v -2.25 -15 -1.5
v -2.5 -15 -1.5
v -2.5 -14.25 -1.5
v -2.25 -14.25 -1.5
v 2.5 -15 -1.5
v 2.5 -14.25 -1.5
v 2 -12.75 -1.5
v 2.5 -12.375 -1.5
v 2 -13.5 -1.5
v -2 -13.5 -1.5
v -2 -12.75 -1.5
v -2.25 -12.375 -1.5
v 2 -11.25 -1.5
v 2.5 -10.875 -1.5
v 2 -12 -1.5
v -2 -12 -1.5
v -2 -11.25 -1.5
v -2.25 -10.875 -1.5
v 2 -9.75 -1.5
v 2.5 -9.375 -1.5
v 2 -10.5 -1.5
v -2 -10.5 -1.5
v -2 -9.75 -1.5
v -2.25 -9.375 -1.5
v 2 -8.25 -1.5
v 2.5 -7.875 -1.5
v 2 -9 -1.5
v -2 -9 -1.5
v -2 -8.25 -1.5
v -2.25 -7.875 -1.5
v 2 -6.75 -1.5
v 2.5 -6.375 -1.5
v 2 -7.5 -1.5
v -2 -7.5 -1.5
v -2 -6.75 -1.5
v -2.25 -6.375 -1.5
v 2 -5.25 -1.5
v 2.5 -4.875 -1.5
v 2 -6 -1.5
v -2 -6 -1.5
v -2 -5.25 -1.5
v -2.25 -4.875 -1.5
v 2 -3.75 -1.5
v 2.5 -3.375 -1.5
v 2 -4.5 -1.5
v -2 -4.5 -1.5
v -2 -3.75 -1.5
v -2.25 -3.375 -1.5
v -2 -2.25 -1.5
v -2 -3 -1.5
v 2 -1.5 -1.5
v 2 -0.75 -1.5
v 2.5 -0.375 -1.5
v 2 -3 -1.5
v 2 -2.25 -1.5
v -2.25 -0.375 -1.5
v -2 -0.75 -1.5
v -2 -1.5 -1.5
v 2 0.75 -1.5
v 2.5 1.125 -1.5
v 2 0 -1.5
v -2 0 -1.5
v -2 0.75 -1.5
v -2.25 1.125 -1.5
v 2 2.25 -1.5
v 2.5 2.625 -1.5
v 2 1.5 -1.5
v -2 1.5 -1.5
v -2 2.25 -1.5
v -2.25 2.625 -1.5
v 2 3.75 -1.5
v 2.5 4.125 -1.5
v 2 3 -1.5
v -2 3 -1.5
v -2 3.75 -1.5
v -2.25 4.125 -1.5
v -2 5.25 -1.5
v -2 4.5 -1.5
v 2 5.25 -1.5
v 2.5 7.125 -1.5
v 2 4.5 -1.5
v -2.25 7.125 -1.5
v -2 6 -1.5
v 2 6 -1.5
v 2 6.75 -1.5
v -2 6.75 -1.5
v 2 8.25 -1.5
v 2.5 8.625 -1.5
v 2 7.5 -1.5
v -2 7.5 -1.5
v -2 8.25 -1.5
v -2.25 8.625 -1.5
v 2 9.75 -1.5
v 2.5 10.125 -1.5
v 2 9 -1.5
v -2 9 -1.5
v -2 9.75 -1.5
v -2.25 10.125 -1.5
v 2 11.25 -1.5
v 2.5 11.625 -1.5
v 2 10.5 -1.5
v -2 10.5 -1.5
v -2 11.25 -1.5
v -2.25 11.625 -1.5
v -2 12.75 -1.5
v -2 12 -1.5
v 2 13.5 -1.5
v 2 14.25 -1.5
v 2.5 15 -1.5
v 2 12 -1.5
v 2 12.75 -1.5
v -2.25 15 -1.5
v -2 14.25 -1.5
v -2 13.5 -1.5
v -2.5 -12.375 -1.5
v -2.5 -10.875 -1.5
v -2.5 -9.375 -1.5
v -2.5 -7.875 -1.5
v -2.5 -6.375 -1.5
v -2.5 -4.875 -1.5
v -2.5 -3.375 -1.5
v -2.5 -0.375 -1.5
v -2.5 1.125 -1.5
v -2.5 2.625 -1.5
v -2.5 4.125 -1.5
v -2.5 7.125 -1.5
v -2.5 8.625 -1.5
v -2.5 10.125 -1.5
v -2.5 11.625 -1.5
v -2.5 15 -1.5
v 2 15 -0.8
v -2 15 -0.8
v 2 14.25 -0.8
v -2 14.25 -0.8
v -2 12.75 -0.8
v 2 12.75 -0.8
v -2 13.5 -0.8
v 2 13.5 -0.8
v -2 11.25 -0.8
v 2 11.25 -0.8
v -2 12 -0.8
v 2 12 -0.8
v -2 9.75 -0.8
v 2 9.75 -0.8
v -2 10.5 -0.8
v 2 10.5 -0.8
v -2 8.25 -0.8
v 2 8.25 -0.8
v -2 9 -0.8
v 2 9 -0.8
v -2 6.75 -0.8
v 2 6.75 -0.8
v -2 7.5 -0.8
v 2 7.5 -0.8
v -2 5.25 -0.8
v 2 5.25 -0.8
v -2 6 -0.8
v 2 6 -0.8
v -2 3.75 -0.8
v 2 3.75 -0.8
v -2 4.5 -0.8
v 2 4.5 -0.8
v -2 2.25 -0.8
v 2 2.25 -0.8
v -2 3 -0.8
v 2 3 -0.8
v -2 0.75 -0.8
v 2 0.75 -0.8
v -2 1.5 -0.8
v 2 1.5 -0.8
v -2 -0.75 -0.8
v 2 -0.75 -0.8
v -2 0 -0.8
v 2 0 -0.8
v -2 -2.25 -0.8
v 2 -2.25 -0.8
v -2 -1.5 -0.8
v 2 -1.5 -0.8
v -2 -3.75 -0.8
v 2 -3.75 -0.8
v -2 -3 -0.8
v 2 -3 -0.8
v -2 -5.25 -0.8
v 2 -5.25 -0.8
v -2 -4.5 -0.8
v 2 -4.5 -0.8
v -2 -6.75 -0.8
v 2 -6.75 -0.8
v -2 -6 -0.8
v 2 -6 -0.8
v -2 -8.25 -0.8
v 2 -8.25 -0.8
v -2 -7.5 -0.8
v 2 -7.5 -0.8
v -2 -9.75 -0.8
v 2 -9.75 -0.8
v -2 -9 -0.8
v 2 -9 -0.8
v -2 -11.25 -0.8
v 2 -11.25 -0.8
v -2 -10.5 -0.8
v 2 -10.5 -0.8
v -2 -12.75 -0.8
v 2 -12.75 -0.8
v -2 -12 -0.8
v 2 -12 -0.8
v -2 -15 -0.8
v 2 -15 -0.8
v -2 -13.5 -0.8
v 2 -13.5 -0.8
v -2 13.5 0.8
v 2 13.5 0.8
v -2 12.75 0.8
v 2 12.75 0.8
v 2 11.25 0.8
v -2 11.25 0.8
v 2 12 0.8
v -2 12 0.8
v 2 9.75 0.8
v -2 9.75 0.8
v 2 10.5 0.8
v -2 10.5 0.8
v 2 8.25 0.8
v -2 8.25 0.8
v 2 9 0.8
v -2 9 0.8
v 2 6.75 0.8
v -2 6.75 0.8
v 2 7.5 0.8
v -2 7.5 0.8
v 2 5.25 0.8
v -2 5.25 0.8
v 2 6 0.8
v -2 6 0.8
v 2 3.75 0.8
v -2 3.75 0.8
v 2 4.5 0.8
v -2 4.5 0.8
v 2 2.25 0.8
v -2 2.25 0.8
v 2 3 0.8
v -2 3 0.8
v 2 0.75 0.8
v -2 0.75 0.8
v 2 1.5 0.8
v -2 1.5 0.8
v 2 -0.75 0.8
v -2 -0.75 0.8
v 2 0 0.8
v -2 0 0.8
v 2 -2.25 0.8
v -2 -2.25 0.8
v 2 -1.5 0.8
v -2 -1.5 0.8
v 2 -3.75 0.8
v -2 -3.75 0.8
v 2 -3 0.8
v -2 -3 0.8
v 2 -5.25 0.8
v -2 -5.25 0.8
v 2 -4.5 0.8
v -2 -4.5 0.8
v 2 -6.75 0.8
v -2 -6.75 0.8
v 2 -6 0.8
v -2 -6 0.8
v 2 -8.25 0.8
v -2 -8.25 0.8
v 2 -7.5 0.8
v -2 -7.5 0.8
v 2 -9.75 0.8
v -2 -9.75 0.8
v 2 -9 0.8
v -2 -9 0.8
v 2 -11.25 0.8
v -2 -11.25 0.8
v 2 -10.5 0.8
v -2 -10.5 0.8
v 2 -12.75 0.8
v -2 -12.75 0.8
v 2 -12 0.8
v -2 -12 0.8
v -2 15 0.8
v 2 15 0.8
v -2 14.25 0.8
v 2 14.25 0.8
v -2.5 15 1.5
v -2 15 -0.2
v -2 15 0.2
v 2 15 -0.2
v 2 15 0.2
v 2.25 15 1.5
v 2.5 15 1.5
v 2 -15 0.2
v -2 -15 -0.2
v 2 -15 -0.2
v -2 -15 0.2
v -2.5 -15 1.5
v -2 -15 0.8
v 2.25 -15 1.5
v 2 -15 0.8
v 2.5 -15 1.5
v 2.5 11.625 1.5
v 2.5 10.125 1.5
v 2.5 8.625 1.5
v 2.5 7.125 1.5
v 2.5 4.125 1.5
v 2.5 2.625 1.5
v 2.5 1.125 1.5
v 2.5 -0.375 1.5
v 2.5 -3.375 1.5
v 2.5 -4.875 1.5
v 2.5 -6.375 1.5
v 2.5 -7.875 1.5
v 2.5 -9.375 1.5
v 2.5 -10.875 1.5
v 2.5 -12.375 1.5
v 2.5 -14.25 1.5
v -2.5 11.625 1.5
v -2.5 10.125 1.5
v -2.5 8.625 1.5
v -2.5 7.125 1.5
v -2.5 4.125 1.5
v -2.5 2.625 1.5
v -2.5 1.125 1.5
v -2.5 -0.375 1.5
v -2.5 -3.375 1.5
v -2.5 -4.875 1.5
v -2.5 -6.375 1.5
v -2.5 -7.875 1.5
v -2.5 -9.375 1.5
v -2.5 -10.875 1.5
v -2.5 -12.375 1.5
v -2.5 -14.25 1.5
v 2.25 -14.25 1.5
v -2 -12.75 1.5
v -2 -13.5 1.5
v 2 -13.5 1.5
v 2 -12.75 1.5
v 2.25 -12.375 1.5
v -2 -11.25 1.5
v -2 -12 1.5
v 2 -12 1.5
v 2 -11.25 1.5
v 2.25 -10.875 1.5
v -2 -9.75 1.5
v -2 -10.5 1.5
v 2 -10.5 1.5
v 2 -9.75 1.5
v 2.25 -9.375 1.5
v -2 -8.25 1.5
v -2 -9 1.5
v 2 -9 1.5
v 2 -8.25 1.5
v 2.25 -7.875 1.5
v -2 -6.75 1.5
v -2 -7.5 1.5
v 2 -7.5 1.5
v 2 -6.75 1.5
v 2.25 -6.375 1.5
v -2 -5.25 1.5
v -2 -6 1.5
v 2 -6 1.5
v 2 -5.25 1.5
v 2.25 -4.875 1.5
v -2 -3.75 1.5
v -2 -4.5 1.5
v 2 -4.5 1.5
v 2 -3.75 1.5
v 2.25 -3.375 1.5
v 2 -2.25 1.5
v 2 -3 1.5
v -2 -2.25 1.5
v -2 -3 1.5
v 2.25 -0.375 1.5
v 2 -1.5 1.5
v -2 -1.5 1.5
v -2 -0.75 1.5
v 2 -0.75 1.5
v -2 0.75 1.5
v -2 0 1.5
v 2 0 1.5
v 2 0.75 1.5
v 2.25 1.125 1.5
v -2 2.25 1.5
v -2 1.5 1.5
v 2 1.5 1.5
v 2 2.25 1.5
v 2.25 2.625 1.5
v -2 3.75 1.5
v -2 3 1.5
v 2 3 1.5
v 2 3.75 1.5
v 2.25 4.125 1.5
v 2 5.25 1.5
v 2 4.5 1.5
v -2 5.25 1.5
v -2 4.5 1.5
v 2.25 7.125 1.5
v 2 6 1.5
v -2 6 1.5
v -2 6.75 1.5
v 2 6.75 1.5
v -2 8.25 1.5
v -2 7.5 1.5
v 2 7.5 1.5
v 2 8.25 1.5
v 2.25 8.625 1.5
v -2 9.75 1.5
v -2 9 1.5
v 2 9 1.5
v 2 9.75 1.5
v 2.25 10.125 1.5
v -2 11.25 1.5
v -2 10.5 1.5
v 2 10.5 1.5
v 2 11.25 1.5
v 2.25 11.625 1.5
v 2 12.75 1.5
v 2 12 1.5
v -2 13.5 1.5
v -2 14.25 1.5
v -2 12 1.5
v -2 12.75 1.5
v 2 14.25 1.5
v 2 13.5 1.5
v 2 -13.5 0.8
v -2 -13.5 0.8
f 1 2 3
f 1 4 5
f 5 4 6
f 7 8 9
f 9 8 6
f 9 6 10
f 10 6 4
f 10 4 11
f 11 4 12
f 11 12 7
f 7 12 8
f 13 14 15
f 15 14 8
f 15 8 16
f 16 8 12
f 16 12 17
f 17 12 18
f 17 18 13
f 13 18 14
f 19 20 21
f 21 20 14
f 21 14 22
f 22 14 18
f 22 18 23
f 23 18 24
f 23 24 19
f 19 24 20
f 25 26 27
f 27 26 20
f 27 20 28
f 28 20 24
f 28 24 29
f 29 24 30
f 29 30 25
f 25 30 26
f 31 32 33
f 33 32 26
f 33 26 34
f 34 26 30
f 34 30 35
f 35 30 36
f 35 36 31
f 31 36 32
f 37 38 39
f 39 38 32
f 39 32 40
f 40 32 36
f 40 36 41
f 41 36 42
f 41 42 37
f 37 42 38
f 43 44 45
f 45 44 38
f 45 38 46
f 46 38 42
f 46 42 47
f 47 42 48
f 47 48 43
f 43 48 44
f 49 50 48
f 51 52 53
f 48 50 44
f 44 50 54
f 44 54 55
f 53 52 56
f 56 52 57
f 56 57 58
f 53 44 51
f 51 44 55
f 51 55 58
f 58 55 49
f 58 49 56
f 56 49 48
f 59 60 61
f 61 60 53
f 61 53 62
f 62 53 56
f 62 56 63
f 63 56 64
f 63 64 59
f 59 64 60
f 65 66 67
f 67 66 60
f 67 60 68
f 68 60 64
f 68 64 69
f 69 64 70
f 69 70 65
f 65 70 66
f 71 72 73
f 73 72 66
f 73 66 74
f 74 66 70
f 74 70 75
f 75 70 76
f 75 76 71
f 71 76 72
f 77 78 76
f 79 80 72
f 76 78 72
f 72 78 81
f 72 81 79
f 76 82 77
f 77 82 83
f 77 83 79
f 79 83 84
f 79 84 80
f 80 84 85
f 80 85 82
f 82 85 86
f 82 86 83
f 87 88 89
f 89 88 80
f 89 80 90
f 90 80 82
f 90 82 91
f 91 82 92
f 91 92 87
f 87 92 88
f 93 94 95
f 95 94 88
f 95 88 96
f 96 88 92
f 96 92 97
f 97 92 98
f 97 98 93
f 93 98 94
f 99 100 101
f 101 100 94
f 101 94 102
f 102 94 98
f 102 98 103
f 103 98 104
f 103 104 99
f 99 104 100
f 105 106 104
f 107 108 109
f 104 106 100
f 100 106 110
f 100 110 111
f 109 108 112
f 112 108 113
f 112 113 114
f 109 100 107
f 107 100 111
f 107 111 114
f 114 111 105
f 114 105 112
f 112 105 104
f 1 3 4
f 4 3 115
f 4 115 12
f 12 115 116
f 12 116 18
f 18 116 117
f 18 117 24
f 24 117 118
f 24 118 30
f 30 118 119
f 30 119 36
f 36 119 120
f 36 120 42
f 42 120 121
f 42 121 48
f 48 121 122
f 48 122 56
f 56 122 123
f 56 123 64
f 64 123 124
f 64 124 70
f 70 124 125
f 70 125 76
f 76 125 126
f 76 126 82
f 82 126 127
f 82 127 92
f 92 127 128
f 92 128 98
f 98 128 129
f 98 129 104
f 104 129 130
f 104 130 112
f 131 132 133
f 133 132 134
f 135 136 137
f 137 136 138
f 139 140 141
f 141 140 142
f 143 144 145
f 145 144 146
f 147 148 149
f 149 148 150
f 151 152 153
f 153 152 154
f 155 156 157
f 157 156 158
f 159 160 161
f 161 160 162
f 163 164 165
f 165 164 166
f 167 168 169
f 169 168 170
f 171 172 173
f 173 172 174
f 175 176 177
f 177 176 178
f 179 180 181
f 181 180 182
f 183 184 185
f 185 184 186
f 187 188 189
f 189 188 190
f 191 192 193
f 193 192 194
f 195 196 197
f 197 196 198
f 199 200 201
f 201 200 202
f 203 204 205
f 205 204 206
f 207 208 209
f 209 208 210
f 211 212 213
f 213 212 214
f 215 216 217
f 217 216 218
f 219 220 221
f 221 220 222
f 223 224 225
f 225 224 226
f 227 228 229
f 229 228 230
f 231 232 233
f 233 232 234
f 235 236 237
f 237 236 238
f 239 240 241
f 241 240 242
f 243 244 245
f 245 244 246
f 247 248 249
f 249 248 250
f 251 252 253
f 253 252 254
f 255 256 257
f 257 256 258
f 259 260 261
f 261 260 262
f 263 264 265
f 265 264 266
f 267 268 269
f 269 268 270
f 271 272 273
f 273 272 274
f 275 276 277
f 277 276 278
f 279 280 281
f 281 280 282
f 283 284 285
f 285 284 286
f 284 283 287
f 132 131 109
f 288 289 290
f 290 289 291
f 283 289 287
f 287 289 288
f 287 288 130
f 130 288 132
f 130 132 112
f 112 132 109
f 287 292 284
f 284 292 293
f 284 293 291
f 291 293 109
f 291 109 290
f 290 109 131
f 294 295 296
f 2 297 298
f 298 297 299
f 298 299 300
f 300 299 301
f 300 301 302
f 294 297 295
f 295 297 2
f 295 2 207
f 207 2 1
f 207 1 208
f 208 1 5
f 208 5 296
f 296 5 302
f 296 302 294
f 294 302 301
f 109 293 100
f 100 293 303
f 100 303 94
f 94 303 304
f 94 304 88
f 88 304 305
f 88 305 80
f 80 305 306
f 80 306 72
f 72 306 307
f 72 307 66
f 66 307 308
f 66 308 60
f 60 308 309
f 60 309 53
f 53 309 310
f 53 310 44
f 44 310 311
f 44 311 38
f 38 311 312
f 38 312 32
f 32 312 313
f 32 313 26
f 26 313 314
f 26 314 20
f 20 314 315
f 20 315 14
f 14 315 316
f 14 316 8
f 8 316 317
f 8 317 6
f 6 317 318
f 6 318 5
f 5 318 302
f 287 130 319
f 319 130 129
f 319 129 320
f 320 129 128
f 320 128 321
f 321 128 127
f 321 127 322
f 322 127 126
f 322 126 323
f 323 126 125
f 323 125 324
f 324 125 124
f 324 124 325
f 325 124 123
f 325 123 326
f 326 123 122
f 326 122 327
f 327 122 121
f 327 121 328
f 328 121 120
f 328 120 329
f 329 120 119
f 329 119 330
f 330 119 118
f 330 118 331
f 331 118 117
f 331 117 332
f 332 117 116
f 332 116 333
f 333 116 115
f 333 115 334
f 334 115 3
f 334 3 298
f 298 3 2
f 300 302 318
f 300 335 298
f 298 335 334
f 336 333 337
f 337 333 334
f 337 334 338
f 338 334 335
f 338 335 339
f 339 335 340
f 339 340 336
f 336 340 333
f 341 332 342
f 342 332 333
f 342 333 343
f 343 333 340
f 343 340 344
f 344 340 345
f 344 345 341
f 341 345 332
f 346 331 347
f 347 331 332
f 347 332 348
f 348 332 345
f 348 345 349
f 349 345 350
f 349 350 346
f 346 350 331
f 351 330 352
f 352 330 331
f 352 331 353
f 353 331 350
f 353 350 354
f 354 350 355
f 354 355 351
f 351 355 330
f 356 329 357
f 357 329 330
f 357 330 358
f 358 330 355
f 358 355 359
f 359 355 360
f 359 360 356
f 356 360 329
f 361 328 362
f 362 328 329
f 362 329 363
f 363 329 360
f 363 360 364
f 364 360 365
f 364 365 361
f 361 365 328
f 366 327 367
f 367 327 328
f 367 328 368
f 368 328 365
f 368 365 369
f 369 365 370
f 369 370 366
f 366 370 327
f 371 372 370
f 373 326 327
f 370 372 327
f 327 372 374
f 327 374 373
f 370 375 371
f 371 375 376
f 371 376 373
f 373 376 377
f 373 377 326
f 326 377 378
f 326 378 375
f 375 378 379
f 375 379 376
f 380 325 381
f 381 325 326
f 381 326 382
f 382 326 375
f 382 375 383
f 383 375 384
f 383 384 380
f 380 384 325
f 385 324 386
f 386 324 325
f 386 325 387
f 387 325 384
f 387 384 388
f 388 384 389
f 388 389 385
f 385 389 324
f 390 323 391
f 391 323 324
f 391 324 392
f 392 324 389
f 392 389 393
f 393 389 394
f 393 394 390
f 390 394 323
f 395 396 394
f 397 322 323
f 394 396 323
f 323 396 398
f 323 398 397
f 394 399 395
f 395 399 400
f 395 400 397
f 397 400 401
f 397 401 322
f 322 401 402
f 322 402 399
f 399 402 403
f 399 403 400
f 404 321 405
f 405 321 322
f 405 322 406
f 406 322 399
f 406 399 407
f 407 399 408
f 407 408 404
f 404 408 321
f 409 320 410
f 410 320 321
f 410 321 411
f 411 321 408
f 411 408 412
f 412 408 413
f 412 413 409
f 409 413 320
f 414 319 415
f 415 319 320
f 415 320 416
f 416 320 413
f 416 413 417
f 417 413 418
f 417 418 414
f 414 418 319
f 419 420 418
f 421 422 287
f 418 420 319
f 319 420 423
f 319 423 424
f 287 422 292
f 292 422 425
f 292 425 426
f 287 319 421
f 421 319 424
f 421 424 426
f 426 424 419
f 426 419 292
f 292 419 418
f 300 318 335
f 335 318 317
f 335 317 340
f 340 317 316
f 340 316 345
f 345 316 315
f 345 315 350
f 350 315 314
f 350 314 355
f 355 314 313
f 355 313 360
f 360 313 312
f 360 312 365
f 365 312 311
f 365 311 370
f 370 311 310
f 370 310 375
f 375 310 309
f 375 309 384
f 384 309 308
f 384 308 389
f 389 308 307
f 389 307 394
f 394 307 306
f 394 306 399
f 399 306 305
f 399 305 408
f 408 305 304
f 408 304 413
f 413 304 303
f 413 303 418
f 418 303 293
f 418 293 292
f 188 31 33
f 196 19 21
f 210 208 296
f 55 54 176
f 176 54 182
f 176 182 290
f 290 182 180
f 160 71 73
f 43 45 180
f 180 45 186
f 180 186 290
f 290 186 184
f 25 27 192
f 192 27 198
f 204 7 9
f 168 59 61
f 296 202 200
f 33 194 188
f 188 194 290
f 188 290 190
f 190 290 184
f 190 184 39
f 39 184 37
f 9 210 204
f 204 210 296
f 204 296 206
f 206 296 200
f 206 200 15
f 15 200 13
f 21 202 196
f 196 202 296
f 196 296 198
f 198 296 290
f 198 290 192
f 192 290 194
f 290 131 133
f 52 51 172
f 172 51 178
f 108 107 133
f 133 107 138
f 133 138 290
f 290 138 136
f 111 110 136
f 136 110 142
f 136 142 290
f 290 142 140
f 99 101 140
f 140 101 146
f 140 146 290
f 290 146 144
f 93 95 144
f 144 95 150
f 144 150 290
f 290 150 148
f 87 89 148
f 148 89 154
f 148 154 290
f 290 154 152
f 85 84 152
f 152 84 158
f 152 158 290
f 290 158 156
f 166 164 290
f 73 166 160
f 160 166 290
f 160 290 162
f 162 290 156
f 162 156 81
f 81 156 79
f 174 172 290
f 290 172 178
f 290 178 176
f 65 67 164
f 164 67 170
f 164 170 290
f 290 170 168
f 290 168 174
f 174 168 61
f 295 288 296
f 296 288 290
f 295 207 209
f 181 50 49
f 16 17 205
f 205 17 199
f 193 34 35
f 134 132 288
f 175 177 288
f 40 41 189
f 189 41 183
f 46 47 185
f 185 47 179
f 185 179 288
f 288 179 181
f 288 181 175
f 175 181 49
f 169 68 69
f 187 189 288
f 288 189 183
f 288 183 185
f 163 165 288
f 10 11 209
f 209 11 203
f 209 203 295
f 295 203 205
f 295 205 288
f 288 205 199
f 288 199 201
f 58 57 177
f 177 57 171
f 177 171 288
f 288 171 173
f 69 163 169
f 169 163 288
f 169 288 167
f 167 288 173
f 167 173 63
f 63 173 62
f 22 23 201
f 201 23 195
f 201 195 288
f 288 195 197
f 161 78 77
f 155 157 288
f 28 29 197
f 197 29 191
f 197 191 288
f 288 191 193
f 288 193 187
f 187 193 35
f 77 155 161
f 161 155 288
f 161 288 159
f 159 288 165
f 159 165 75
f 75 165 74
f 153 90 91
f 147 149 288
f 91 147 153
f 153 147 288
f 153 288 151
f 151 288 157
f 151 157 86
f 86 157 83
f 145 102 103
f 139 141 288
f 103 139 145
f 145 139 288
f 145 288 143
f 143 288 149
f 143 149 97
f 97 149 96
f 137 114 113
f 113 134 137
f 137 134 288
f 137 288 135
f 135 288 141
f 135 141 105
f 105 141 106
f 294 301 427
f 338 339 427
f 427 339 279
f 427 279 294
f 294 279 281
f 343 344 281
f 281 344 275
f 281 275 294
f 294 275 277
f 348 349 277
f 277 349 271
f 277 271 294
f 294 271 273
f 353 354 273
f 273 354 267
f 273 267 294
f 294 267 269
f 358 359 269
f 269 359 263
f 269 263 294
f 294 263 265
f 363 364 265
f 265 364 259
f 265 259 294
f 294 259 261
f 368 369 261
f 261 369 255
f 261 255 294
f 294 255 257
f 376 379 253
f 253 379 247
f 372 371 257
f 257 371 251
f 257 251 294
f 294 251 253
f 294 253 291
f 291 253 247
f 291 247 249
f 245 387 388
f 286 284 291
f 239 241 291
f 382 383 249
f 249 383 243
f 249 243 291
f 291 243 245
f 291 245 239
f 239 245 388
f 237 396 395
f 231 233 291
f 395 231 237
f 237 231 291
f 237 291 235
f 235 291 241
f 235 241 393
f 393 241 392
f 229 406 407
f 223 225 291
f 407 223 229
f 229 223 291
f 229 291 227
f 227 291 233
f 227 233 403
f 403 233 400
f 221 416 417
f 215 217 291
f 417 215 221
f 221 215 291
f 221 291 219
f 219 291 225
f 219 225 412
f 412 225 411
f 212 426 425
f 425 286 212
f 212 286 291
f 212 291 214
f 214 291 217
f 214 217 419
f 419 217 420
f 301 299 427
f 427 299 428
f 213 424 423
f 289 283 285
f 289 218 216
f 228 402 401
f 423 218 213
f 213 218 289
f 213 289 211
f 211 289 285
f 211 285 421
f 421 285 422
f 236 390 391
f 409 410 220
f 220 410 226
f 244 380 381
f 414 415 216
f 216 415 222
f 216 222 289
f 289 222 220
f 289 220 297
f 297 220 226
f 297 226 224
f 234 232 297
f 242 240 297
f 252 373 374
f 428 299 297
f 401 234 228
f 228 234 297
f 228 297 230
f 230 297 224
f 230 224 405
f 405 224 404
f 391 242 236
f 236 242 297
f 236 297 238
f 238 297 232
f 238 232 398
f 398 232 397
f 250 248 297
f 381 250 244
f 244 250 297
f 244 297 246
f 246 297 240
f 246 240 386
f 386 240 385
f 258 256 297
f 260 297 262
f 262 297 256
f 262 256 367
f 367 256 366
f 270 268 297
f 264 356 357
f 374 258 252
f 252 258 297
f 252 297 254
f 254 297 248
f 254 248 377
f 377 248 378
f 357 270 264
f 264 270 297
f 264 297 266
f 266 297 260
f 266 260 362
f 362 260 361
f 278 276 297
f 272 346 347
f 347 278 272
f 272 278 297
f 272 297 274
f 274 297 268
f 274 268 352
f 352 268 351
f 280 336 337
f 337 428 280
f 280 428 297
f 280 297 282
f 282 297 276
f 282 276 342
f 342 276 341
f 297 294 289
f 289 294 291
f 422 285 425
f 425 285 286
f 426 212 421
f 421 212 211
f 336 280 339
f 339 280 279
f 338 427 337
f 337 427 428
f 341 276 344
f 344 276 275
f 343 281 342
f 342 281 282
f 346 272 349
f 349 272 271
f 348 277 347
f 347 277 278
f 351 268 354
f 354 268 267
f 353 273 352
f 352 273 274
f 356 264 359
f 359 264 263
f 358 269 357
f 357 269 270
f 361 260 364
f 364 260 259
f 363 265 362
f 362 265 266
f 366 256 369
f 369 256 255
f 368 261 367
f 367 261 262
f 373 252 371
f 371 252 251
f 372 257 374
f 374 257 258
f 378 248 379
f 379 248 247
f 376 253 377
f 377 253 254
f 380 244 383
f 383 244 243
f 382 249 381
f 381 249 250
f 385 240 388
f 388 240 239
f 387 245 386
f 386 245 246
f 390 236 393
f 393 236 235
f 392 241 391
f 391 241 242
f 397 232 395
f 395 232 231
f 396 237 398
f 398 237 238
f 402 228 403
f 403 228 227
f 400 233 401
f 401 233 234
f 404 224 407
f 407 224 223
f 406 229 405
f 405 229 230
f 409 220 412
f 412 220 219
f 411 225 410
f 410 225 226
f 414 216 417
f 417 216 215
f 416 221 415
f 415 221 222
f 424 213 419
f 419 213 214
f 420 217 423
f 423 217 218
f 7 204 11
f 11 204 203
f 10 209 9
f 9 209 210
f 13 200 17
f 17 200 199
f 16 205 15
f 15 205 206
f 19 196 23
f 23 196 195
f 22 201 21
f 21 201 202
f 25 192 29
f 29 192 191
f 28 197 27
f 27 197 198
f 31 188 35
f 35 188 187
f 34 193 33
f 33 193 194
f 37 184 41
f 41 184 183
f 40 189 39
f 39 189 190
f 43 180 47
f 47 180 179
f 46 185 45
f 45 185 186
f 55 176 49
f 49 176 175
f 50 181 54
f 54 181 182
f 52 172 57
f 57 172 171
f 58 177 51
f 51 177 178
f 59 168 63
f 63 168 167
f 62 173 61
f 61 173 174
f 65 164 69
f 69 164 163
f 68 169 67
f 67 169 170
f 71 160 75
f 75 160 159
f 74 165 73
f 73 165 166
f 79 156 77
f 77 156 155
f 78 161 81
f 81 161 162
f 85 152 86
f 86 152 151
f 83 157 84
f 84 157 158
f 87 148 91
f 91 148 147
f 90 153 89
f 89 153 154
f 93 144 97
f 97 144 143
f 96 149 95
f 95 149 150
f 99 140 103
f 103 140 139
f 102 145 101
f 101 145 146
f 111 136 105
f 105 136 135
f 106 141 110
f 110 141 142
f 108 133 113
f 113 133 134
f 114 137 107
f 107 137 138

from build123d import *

# Parameters (mm, degrees)
SKETCH1_W                = 5
SKETCH1_H                = 3
BOSS_EXTRUDE1_DEPTH      = 15
CUT_EXTRUDE1_START       = -31
SKETCH2_W                = 4
SKETCH2_H                = 0.6
CUT_EXTRUDE1_DEPTH       = 32
SKETCH3_W                = 4
SKETCH3_H                = 0.75
CUT_EXTRUDE2_DEPTH       = 0.7
LPATTERN1_COUNT          = 19
LPATTERN1_PITCH          = 1.5
MIRROR2_COPY_1_SKETCH_W  = 4
MIRROR2_COPY_1_SKETCH_H  = 0.75
MIRROR2_COPY_1_DEPTH     = 0.7
MIRROR2_COPY_2_SKETCH_W  = 4
MIRROR2_COPY_2_SKETCH_H  = 0.75
MIRROR2_COPY_2_DEPTH     = 0.7
MIRROR2_COPY_3_SKETCH_W  = 4
MIRROR2_COPY_3_SKETCH_H  = 0.75
MIRROR2_COPY_3_DEPTH     = 0.7
MIRROR2_COPY_4_SKETCH_W  = 4
MIRROR2_COPY_4_SKETCH_H  = 0.75
MIRROR2_COPY_4_DEPTH     = 0.7
MIRROR2_COPY_5_SKETCH_W  = 4
MIRROR2_COPY_5_SKETCH_H  = 0.75
MIRROR2_COPY_5_DEPTH     = 0.7
MIRROR2_COPY_6_SKETCH_W  = 4
MIRROR2_COPY_6_SKETCH_H  = 0.75
MIRROR2_COPY_6_DEPTH     = 0.7
MIRROR2_COPY_7_SKETCH_W  = 4
MIRROR2_COPY_7_SKETCH_H  = 0.75
MIRROR2_COPY_7_DEPTH     = 0.7
MIRROR2_COPY_8_SKETCH_W  = 4
MIRROR2_COPY_8_SKETCH_H  = 0.75
MIRROR2_COPY_8_DEPTH     = 0.7
MIRROR2_COPY_9_SKETCH_W  = 4
MIRROR2_COPY_9_SKETCH_H  = 0.75
MIRROR2_COPY_9_DEPTH     = 0.7
MIRROR2_COPY_10_SKETCH_W = 4
MIRROR2_COPY_10_SKETCH_H = 0.75
MIRROR2_COPY_10_DEPTH    = 0.7
MIRROR2_COPY_11_SKETCH_W = 4
MIRROR2_COPY_11_SKETCH_H = 0.75
MIRROR2_COPY_11_DEPTH    = 0.7
MIRROR2_COPY_12_SKETCH_W = 4
MIRROR2_COPY_12_SKETCH_H = 0.75
MIRROR2_COPY_12_DEPTH    = 0.7
MIRROR2_COPY_13_SKETCH_W = 4
MIRROR2_COPY_13_SKETCH_H = 0.75
MIRROR2_COPY_13_DEPTH    = 0.7
MIRROR2_COPY_14_SKETCH_W = 4
MIRROR2_COPY_14_SKETCH_H = 0.75
MIRROR2_COPY_14_DEPTH    = 0.7
MIRROR2_COPY_15_SKETCH_W = 4
MIRROR2_COPY_15_SKETCH_H = 0.75
MIRROR2_COPY_15_DEPTH    = 0.7
MIRROR2_COPY_16_SKETCH_W = 4
MIRROR2_COPY_16_SKETCH_H = 0.75
MIRROR2_COPY_16_DEPTH    = 0.7
MIRROR2_COPY_17_SKETCH_W = 4
MIRROR2_COPY_17_SKETCH_H = 0.75
MIRROR2_COPY_17_DEPTH    = 0.7
MIRROR2_COPY_18_SKETCH_W = 4
MIRROR2_COPY_18_SKETCH_H = 0.75
MIRROR2_COPY_18_DEPTH    = 0.7


with BuildPart() as part:
    # Sketch1 → Boss-Extrude1 (new body, symmetric)
    with BuildSketch(Plane(origin=(0, 0, 0), x_dir=(1, 0, 0), z_dir=(0, 1, 0))):
        Rectangle(SKETCH1_W, SKETCH1_H)
    extrude(amount=BOSS_EXTRUDE1_DEPTH, both=True)

    # Sketch2 → Cut-Extrude1 (cut)
    with BuildSketch(Plane(origin=(0, 15, 0), x_dir=(1, 0, 0), z_dir=(0, 1, 0)).offset(CUT_EXTRUDE1_START)):
        with Locations((0, 0.5)):
            Rectangle(SKETCH2_W, SKETCH2_H)
    cut_extrude1 = extrude(amount=CUT_EXTRUDE1_DEPTH, mode=Mode.SUBTRACT)

    # Mirror1: Cut-Extrude1 across plane
    add(cut_extrude1.mirror(Plane.XY), mode=Mode.SUBTRACT)

    # Sketch3 → Cut-Extrude2 (cut)
    with BuildSketch(Plane.XY.offset(1.5)):
        with Locations((0, 13.875)):
            Rectangle(SKETCH3_W, SKETCH3_H)
    cut_extrude2 = extrude(amount=-CUT_EXTRUDE2_DEPTH, mode=Mode.SUBTRACT)

    # LPattern1: Cut-Extrude2 ×19
    with Locations(*[(0, -i * LPATTERN1_PITCH, 0) for i in range(1, LPATTERN1_COUNT)]):
        add(cut_extrude2, mode=Mode.SUBTRACT)

    # Mirror2: Cut-Extrude2 across plane
    add(cut_extrude2.mirror(Plane.XY), mode=Mode.SUBTRACT)

    # Mirror2 copy 1 sketch → Mirror2 copy 1 (cut)
    with BuildSketch(Plane(origin=(0, -1.5, -1.5), x_dir=(1, 0, 0), z_dir=(0, 0, -1))):
        with Locations((0, -13.875)):
            Rectangle(MIRROR2_COPY_1_SKETCH_W, MIRROR2_COPY_1_SKETCH_H)
    extrude(amount=-MIRROR2_COPY_1_DEPTH, mode=Mode.SUBTRACT)

    # Mirror2 copy 2 sketch → Mirror2 copy 2 (cut)
    with BuildSketch(Plane(origin=(0, -3, -1.5), x_dir=(1, 0, 0), z_dir=(0, 0, -1))):
        with Locations((0, -13.875)):
            Rectangle(MIRROR2_COPY_2_SKETCH_W, MIRROR2_COPY_2_SKETCH_H)
    extrude(amount=-MIRROR2_COPY_2_DEPTH, mode=Mode.SUBTRACT)

    # Mirror2 copy 3 sketch → Mirror2 copy 3 (cut)
    with BuildSketch(Plane(origin=(0, -4.5, -1.5), x_dir=(1, 0, 0), z_dir=(0, 0, -1))):
        with Locations((0, -13.875)):
            Rectangle(MIRROR2_COPY_3_SKETCH_W, MIRROR2_COPY_3_SKETCH_H)
    extrude(amount=-MIRROR2_COPY_3_DEPTH, mode=Mode.SUBTRACT)

    # Mirror2 copy 4 sketch → Mirror2 copy 4 (cut)
    with BuildSketch(Plane(origin=(0, -6, -1.5), x_dir=(1, 0, 0), z_dir=(0, 0, -1))):
        with Locations((0, -13.875)):
            Rectangle(MIRROR2_COPY_4_SKETCH_W, MIRROR2_COPY_4_SKETCH_H)
    extrude(amount=-MIRROR2_COPY_4_DEPTH, mode=Mode.SUBTRACT)

    # Mirror2 copy 5 sketch → Mirror2 copy 5 (cut)
    with BuildSketch(Plane(origin=(0, -7.5, -1.5), x_dir=(1, 0, 0), z_dir=(0, 0, -1))):
        with Locations((0, -13.875)):
            Rectangle(MIRROR2_COPY_5_SKETCH_W, MIRROR2_COPY_5_SKETCH_H)
    extrude(amount=-MIRROR2_COPY_5_DEPTH, mode=Mode.SUBTRACT)

    # Mirror2 copy 6 sketch → Mirror2 copy 6 (cut)
    with BuildSketch(Plane(origin=(0, -9, -1.5), x_dir=(1, 0, 0), z_dir=(0, 0, -1))):
        with Locations((0, -13.875)):
            Rectangle(MIRROR2_COPY_6_SKETCH_W, MIRROR2_COPY_6_SKETCH_H)
    extrude(amount=-MIRROR2_COPY_6_DEPTH, mode=Mode.SUBTRACT)

    # Mirror2 copy 7 sketch → Mirror2 copy 7 (cut)
    with BuildSketch(Plane(origin=(0, -10.5, -1.5), x_dir=(1, 0, 0), z_dir=(0, 0, -1))):
        with Locations((0, -13.875)):
            Rectangle(MIRROR2_COPY_7_SKETCH_W, MIRROR2_COPY_7_SKETCH_H)
    extrude(amount=-MIRROR2_COPY_7_DEPTH, mode=Mode.SUBTRACT)

    # Mirror2 copy 8 sketch → Mirror2 copy 8 (cut)
    with BuildSketch(Plane(origin=(0, -12, -1.5), x_dir=(1, 0, 0), z_dir=(0, 0, -1))):
        with Locations((0, -13.875)):
            Rectangle(MIRROR2_COPY_8_SKETCH_W, MIRROR2_COPY_8_SKETCH_H)
    extrude(amount=-MIRROR2_COPY_8_DEPTH, mode=Mode.SUBTRACT)

    # Mirror2 copy 9 sketch → Mirror2 copy 9 (cut)
    with BuildSketch(Plane(origin=(0, -13.5, -1.5), x_dir=(1, 0, 0), z_dir=(0, 0, -1))):
        with Locations((0, -13.875)):
            Rectangle(MIRROR2_COPY_9_SKETCH_W, MIRROR2_COPY_9_SKETCH_H)
    extrude(amount=-MIRROR2_COPY_9_DEPTH, mode=Mode.SUBTRACT)

    # Mirror2 copy 10 sketch → Mirror2 copy 10 (cut)
    with BuildSketch(Plane(origin=(0, -15, -1.5), x_dir=(1, 0, 0), z_dir=(0, 0, -1))):
        with Locations((0, -13.875)):
            Rectangle(MIRROR2_COPY_10_SKETCH_W, MIRROR2_COPY_10_SKETCH_H)
    extrude(amount=-MIRROR2_COPY_10_DEPTH, mode=Mode.SUBTRACT)

    # Mirror2 copy 11 sketch → Mirror2 copy 11 (cut)
    with BuildSketch(Plane(origin=(0, -16.5, -1.5), x_dir=(1, 0, 0), z_dir=(0, 0, -1))):
        with Locations((0, -13.875)):
            Rectangle(MIRROR2_COPY_11_SKETCH_W, MIRROR2_COPY_11_SKETCH_H)
    extrude(amount=-MIRROR2_COPY_11_DEPTH, mode=Mode.SUBTRACT)

    # Mirror2 copy 12 sketch → Mirror2 copy 12 (cut)
    with BuildSketch(Plane(origin=(0, -18, -1.5), x_dir=(1, 0, 0), z_dir=(0, 0, -1))):
        with Locations((0, -13.875)):
            Rectangle(MIRROR2_COPY_12_SKETCH_W, MIRROR2_COPY_12_SKETCH_H)
    extrude(amount=-MIRROR2_COPY_12_DEPTH, mode=Mode.SUBTRACT)

    # Mirror2 copy 13 sketch → Mirror2 copy 13 (cut)
    with BuildSketch(Plane(origin=(0, -19.5, -1.5), x_dir=(1, 0, 0), z_dir=(0, 0, -1))):
        with Locations((0, -13.875)):
            Rectangle(MIRROR2_COPY_13_SKETCH_W, MIRROR2_COPY_13_SKETCH_H)
    extrude(amount=-MIRROR2_COPY_13_DEPTH, mode=Mode.SUBTRACT)

    # Mirror2 copy 14 sketch → Mirror2 copy 14 (cut)
    with BuildSketch(Plane(origin=(0, -21, -1.5), x_dir=(1, 0, 0), z_dir=(0, 0, -1))):
        with Locations((0, -13.875)):
            Rectangle(MIRROR2_COPY_14_SKETCH_W, MIRROR2_COPY_14_SKETCH_H)
    extrude(amount=-MIRROR2_COPY_14_DEPTH, mode=Mode.SUBTRACT)

    # Mirror2 copy 15 sketch → Mirror2 copy 15 (cut)
    with BuildSketch(Plane(origin=(0, -22.5, -1.5), x_dir=(1, 0, 0), z_dir=(0, 0, -1))):
        with Locations((0, -13.875)):
            Rectangle(MIRROR2_COPY_15_SKETCH_W, MIRROR2_COPY_15_SKETCH_H)
    extrude(amount=-MIRROR2_COPY_15_DEPTH, mode=Mode.SUBTRACT)

    # Mirror2 copy 16 sketch → Mirror2 copy 16 (cut)
    with BuildSketch(Plane(origin=(0, -24, -1.5), x_dir=(1, 0, 0), z_dir=(0, 0, -1))):
        with Locations((0, -13.875)):
            Rectangle(MIRROR2_COPY_16_SKETCH_W, MIRROR2_COPY_16_SKETCH_H)
    extrude(amount=-MIRROR2_COPY_16_DEPTH, mode=Mode.SUBTRACT)

    # Mirror2 copy 17 sketch → Mirror2 copy 17 (cut)
    with BuildSketch(Plane(origin=(0, -25.5, -1.5), x_dir=(1, 0, 0), z_dir=(0, 0, -1))):
        with Locations((0, -13.875)):
            Rectangle(MIRROR2_COPY_17_SKETCH_W, MIRROR2_COPY_17_SKETCH_H)
    extrude(amount=-MIRROR2_COPY_17_DEPTH, mode=Mode.SUBTRACT)

    # Mirror2 copy 18 sketch → Mirror2 copy 18 (cut)
    with BuildSketch(Plane(origin=(0, -27, -1.5), x_dir=(1, 0, 0), z_dir=(0, 0, -1))):
        with Locations((0, -13.875)):
            Rectangle(MIRROR2_COPY_18_SKETCH_W, MIRROR2_COPY_18_SKETCH_H)
    extrude(amount=-MIRROR2_COPY_18_DEPTH, mode=Mode.SUBTRACT)


solid = part.part
